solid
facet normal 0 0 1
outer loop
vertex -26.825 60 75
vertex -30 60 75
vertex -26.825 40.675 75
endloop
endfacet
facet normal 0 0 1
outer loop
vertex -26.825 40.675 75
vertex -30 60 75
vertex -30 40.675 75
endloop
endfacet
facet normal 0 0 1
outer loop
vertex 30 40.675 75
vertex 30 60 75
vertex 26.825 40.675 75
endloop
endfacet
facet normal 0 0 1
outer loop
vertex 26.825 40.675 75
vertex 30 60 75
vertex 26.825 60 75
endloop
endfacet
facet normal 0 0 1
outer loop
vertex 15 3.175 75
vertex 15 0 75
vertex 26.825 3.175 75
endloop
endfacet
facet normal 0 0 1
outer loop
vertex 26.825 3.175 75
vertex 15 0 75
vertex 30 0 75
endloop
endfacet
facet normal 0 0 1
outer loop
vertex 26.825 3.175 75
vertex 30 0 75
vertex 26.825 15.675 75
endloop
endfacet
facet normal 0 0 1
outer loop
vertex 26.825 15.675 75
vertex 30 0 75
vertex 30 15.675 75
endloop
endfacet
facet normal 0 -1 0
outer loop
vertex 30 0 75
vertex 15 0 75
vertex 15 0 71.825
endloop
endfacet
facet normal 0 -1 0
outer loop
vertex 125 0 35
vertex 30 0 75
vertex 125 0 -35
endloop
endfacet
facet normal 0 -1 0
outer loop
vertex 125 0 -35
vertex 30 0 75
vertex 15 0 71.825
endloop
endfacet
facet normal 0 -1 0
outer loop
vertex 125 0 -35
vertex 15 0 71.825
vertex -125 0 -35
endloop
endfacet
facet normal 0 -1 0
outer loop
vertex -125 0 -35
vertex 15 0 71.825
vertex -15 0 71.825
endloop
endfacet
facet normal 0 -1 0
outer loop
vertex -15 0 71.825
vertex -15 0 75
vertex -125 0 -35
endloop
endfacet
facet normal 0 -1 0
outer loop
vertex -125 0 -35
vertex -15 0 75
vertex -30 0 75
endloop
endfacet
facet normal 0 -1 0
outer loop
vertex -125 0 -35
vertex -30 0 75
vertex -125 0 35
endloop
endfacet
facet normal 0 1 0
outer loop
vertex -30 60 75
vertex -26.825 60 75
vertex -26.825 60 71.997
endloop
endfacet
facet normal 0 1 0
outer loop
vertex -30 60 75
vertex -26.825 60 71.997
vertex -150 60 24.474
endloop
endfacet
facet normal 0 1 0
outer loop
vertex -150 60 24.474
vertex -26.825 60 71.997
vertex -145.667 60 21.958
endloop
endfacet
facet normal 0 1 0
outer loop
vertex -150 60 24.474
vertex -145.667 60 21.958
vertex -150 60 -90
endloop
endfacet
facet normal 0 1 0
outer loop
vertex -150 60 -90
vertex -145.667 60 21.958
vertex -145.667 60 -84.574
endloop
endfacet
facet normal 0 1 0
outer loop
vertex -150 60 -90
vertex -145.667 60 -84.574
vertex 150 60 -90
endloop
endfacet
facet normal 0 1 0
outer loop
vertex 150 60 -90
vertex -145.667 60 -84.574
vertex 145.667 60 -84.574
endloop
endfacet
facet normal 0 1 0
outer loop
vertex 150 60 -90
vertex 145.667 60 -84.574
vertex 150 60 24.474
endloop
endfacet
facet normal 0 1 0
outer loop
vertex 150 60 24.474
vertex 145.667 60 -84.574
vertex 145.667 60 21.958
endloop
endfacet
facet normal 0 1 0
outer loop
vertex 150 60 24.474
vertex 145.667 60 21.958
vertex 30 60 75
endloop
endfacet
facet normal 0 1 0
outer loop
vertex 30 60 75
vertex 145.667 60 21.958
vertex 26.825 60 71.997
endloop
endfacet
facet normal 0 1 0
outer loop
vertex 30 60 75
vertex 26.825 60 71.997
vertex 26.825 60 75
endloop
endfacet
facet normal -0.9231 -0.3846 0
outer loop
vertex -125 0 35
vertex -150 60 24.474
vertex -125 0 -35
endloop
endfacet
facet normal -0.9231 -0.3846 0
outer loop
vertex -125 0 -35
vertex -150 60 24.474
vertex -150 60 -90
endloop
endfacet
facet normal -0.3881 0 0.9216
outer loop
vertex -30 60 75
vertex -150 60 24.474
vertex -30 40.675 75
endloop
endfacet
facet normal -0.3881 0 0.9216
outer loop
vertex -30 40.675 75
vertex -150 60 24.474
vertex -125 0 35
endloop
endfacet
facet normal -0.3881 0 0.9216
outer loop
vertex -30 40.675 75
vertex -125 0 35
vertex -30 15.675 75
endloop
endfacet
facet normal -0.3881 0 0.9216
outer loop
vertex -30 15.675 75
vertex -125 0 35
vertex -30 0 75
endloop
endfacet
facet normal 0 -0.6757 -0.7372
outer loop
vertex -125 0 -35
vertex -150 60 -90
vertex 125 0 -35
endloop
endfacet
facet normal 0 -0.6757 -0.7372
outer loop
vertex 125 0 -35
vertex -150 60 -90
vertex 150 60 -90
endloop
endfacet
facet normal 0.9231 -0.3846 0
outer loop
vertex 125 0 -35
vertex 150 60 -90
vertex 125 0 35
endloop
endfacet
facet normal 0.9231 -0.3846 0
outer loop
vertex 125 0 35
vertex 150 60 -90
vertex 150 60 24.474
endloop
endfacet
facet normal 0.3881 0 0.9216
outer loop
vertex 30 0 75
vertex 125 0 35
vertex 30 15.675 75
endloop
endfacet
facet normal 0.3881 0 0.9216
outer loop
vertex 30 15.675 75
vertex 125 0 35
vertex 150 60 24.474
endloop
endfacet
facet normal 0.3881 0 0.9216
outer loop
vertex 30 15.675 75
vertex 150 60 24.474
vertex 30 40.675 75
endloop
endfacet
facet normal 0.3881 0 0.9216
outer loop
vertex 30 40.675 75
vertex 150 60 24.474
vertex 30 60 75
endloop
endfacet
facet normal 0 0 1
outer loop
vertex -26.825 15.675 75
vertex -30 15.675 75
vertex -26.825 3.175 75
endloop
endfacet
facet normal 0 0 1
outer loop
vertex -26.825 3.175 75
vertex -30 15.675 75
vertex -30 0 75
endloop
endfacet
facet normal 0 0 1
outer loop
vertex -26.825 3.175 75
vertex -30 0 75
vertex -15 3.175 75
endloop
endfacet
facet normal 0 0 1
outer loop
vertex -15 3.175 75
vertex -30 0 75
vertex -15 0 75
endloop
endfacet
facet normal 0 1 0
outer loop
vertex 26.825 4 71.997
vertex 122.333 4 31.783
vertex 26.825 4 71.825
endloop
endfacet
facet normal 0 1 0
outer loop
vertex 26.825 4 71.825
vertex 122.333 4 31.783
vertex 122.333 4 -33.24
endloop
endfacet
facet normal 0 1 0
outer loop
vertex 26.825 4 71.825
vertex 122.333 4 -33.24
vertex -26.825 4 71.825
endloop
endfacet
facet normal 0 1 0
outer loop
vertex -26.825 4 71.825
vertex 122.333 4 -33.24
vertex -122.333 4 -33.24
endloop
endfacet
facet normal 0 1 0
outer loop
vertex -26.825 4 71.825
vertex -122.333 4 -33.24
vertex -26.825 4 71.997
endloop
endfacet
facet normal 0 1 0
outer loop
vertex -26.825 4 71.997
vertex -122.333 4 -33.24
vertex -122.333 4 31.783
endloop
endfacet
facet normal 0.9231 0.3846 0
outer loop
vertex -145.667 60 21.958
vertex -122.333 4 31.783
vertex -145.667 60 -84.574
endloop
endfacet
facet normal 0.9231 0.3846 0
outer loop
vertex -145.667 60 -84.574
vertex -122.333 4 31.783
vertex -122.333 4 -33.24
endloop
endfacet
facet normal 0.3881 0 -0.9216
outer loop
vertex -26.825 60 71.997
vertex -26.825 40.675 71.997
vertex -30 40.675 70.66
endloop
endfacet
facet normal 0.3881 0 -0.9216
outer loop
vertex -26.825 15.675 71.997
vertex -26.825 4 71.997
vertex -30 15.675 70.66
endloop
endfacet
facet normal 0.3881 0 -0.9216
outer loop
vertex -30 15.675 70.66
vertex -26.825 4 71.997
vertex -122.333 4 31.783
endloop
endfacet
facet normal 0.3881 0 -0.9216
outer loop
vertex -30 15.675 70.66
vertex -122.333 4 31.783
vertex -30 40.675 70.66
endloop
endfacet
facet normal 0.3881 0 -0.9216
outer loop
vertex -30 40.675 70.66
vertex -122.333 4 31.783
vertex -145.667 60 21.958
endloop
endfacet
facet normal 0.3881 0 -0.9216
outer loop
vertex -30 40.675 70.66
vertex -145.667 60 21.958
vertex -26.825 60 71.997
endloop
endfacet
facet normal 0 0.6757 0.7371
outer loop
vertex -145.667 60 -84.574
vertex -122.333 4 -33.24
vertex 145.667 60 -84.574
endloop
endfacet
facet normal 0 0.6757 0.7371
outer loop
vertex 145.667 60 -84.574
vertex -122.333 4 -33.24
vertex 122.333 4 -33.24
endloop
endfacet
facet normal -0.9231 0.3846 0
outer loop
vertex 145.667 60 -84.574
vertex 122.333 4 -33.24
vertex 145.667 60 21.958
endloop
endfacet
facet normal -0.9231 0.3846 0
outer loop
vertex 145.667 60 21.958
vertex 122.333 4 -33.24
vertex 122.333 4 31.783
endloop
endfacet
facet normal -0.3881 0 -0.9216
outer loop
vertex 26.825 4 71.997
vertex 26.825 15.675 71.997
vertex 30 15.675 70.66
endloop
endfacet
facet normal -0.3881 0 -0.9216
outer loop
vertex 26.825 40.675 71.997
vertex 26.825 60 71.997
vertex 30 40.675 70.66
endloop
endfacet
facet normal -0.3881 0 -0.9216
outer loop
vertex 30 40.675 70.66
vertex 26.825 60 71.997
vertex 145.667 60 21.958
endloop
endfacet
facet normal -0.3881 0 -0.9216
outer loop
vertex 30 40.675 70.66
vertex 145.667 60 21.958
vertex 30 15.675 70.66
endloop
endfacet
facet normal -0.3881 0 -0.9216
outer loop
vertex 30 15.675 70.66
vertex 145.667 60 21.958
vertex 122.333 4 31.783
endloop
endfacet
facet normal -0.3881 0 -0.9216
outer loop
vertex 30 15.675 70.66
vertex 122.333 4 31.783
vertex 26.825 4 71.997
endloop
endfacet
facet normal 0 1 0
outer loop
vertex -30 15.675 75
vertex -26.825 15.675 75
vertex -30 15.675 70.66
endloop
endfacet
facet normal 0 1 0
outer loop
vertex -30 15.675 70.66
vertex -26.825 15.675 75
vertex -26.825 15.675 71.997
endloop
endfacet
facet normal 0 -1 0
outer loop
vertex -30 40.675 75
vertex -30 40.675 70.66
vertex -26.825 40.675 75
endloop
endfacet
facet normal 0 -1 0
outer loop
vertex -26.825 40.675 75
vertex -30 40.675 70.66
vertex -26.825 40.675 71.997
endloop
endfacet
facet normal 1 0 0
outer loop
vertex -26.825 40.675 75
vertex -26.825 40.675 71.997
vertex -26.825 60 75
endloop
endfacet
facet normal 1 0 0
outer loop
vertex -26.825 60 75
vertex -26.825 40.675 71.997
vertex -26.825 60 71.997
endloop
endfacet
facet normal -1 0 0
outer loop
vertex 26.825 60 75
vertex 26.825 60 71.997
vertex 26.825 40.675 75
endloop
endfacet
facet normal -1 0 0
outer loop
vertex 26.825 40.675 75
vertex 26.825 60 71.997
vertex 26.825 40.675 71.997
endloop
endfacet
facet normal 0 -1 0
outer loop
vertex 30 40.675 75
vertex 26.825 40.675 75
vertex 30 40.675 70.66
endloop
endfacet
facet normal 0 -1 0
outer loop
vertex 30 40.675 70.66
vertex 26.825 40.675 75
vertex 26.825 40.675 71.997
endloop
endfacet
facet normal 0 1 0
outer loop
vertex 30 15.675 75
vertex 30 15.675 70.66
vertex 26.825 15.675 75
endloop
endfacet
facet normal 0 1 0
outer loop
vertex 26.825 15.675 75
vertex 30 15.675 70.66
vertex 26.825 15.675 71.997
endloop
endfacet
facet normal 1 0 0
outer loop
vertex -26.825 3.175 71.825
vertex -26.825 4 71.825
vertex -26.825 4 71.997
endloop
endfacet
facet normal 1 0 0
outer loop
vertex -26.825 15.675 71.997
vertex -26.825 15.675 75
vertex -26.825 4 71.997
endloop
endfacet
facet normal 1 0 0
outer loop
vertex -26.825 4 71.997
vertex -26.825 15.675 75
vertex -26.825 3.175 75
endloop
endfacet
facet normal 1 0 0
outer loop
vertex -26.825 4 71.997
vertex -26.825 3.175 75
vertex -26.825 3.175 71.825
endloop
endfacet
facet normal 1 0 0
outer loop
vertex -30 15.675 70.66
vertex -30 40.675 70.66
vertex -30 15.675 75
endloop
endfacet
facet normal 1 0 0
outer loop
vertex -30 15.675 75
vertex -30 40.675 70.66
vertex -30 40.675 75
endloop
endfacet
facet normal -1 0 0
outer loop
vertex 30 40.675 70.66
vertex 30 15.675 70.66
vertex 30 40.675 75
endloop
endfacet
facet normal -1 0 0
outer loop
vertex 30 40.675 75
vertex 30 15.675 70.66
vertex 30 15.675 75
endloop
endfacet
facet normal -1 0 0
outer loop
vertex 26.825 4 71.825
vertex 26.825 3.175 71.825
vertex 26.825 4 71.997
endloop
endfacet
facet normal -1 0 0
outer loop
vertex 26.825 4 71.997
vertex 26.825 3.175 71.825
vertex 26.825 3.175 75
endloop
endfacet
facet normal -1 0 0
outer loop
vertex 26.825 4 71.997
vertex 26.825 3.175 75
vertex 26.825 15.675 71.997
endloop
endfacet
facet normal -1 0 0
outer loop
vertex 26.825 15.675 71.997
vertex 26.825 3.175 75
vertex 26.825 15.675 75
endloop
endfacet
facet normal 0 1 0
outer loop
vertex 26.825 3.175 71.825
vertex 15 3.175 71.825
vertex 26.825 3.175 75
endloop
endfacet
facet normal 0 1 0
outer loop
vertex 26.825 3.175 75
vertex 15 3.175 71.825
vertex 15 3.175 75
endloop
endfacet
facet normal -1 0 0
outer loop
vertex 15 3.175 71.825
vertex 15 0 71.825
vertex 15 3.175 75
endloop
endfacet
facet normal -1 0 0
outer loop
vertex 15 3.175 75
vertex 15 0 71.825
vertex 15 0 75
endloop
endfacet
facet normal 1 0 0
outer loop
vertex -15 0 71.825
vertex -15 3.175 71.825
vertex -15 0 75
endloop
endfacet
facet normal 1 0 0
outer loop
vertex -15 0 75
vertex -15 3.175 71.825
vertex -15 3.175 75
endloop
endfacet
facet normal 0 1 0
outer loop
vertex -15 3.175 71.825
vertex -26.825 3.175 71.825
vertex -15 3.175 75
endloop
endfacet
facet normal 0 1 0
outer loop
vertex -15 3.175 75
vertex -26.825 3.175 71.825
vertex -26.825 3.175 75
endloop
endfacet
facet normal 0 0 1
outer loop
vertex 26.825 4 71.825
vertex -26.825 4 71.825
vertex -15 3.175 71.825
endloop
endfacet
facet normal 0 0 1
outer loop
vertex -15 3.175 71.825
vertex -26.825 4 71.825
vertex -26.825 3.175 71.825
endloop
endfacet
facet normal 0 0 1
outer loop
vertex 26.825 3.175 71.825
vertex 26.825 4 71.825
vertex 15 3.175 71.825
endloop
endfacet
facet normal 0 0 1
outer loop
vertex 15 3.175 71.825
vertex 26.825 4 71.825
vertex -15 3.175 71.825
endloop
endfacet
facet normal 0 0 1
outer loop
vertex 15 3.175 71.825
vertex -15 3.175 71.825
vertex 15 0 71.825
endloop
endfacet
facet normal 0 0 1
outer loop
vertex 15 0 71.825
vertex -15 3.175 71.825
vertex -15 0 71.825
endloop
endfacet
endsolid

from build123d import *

# Parameters (mm, degrees)
SHELL2_T           = -4
CUT_EXTRUDE1_DEPTH = 3.175
SKETCH6_W          = 2.767139064
SKETCH6_H          = 25
CUT_EXTRUDE2_DEPTH = 10


with BuildPart() as part:
    # Sketch2 → Loft2 section 0
    with BuildSketch(Plane(origin=(0, 60, 0), x_dir=(1, 0, 0), z_dir=(0, 1, 0))):
        with BuildLine():
            Line((-150, -24.473684211), (-150, 90))
            Line((-150, 90), (150, 90))
            Line((150, 90), (150, -24.473684211))
            Line((150, -24.473684211), (30, -75))
            Line((30, -75), (-30, -75))
            Line((-30, -75), (-150, -24.473684211))
        make_face()
    # Sketch1 → Loft2 section 1
    with BuildSketch(Plane(origin=(0, 0, 0), x_dir=(1, 0, 0), z_dir=(0, 1, 0))):
        with BuildLine():
            Line((125, -35), (125, 35))
            Line((125, 35), (-125, 35))
            Line((-125, 35), (-125, -35))
            Line((-125, -35), (-30, -75))
            Line((-30, -75), (30, -75))
            Line((30, -75), (125, -35))
        make_face()
    loft()

    # Shell2
    shell2_openings = [part.faces().sort_by_distance(p)[0] for p in [
        (0, 60, -16.664896975),
        (0, 30, 75),
    ]]
    offset(amount=SHELL2_T, openings=shell2_openings, kind=Kind.INTERSECTION)

    # Sketch5 → Cut-Extrude1 (cut)
    with BuildSketch(Plane.XY.offset(75)):
        Polygon((-26.825, 3.175), (-15, 3.175), (-15, 0), (15, 0), (15, 3.175), (26.825, 3.175), (26.825, 15.675), (30, 15.675), (30, 40.675), (26.825, 40.675), (26.825, 60), (-26.825, 60), (-26.825, 40.675), (-30, 40.675), (-30, 15.675), (-26.825, 15.675), align=None)
    extrude(amount=-CUT_EXTRUDE1_DEPTH, mode=Mode.SUBTRACT)

    # Sketch6 → Cut-Extrude2 (cut)
    with BuildSketch(Plane.XY.offset(71.825)):
        with Locations((-28.616430468, 28.175)):
            Rectangle(SKETCH6_W, SKETCH6_H)
        with Locations((28.616430468, 28.175)):
            Rectangle(SKETCH6_W, SKETCH6_H)
    extrude(amount=-CUT_EXTRUDE2_DEPTH, mode=Mode.SUBTRACT)


solid = part.part
